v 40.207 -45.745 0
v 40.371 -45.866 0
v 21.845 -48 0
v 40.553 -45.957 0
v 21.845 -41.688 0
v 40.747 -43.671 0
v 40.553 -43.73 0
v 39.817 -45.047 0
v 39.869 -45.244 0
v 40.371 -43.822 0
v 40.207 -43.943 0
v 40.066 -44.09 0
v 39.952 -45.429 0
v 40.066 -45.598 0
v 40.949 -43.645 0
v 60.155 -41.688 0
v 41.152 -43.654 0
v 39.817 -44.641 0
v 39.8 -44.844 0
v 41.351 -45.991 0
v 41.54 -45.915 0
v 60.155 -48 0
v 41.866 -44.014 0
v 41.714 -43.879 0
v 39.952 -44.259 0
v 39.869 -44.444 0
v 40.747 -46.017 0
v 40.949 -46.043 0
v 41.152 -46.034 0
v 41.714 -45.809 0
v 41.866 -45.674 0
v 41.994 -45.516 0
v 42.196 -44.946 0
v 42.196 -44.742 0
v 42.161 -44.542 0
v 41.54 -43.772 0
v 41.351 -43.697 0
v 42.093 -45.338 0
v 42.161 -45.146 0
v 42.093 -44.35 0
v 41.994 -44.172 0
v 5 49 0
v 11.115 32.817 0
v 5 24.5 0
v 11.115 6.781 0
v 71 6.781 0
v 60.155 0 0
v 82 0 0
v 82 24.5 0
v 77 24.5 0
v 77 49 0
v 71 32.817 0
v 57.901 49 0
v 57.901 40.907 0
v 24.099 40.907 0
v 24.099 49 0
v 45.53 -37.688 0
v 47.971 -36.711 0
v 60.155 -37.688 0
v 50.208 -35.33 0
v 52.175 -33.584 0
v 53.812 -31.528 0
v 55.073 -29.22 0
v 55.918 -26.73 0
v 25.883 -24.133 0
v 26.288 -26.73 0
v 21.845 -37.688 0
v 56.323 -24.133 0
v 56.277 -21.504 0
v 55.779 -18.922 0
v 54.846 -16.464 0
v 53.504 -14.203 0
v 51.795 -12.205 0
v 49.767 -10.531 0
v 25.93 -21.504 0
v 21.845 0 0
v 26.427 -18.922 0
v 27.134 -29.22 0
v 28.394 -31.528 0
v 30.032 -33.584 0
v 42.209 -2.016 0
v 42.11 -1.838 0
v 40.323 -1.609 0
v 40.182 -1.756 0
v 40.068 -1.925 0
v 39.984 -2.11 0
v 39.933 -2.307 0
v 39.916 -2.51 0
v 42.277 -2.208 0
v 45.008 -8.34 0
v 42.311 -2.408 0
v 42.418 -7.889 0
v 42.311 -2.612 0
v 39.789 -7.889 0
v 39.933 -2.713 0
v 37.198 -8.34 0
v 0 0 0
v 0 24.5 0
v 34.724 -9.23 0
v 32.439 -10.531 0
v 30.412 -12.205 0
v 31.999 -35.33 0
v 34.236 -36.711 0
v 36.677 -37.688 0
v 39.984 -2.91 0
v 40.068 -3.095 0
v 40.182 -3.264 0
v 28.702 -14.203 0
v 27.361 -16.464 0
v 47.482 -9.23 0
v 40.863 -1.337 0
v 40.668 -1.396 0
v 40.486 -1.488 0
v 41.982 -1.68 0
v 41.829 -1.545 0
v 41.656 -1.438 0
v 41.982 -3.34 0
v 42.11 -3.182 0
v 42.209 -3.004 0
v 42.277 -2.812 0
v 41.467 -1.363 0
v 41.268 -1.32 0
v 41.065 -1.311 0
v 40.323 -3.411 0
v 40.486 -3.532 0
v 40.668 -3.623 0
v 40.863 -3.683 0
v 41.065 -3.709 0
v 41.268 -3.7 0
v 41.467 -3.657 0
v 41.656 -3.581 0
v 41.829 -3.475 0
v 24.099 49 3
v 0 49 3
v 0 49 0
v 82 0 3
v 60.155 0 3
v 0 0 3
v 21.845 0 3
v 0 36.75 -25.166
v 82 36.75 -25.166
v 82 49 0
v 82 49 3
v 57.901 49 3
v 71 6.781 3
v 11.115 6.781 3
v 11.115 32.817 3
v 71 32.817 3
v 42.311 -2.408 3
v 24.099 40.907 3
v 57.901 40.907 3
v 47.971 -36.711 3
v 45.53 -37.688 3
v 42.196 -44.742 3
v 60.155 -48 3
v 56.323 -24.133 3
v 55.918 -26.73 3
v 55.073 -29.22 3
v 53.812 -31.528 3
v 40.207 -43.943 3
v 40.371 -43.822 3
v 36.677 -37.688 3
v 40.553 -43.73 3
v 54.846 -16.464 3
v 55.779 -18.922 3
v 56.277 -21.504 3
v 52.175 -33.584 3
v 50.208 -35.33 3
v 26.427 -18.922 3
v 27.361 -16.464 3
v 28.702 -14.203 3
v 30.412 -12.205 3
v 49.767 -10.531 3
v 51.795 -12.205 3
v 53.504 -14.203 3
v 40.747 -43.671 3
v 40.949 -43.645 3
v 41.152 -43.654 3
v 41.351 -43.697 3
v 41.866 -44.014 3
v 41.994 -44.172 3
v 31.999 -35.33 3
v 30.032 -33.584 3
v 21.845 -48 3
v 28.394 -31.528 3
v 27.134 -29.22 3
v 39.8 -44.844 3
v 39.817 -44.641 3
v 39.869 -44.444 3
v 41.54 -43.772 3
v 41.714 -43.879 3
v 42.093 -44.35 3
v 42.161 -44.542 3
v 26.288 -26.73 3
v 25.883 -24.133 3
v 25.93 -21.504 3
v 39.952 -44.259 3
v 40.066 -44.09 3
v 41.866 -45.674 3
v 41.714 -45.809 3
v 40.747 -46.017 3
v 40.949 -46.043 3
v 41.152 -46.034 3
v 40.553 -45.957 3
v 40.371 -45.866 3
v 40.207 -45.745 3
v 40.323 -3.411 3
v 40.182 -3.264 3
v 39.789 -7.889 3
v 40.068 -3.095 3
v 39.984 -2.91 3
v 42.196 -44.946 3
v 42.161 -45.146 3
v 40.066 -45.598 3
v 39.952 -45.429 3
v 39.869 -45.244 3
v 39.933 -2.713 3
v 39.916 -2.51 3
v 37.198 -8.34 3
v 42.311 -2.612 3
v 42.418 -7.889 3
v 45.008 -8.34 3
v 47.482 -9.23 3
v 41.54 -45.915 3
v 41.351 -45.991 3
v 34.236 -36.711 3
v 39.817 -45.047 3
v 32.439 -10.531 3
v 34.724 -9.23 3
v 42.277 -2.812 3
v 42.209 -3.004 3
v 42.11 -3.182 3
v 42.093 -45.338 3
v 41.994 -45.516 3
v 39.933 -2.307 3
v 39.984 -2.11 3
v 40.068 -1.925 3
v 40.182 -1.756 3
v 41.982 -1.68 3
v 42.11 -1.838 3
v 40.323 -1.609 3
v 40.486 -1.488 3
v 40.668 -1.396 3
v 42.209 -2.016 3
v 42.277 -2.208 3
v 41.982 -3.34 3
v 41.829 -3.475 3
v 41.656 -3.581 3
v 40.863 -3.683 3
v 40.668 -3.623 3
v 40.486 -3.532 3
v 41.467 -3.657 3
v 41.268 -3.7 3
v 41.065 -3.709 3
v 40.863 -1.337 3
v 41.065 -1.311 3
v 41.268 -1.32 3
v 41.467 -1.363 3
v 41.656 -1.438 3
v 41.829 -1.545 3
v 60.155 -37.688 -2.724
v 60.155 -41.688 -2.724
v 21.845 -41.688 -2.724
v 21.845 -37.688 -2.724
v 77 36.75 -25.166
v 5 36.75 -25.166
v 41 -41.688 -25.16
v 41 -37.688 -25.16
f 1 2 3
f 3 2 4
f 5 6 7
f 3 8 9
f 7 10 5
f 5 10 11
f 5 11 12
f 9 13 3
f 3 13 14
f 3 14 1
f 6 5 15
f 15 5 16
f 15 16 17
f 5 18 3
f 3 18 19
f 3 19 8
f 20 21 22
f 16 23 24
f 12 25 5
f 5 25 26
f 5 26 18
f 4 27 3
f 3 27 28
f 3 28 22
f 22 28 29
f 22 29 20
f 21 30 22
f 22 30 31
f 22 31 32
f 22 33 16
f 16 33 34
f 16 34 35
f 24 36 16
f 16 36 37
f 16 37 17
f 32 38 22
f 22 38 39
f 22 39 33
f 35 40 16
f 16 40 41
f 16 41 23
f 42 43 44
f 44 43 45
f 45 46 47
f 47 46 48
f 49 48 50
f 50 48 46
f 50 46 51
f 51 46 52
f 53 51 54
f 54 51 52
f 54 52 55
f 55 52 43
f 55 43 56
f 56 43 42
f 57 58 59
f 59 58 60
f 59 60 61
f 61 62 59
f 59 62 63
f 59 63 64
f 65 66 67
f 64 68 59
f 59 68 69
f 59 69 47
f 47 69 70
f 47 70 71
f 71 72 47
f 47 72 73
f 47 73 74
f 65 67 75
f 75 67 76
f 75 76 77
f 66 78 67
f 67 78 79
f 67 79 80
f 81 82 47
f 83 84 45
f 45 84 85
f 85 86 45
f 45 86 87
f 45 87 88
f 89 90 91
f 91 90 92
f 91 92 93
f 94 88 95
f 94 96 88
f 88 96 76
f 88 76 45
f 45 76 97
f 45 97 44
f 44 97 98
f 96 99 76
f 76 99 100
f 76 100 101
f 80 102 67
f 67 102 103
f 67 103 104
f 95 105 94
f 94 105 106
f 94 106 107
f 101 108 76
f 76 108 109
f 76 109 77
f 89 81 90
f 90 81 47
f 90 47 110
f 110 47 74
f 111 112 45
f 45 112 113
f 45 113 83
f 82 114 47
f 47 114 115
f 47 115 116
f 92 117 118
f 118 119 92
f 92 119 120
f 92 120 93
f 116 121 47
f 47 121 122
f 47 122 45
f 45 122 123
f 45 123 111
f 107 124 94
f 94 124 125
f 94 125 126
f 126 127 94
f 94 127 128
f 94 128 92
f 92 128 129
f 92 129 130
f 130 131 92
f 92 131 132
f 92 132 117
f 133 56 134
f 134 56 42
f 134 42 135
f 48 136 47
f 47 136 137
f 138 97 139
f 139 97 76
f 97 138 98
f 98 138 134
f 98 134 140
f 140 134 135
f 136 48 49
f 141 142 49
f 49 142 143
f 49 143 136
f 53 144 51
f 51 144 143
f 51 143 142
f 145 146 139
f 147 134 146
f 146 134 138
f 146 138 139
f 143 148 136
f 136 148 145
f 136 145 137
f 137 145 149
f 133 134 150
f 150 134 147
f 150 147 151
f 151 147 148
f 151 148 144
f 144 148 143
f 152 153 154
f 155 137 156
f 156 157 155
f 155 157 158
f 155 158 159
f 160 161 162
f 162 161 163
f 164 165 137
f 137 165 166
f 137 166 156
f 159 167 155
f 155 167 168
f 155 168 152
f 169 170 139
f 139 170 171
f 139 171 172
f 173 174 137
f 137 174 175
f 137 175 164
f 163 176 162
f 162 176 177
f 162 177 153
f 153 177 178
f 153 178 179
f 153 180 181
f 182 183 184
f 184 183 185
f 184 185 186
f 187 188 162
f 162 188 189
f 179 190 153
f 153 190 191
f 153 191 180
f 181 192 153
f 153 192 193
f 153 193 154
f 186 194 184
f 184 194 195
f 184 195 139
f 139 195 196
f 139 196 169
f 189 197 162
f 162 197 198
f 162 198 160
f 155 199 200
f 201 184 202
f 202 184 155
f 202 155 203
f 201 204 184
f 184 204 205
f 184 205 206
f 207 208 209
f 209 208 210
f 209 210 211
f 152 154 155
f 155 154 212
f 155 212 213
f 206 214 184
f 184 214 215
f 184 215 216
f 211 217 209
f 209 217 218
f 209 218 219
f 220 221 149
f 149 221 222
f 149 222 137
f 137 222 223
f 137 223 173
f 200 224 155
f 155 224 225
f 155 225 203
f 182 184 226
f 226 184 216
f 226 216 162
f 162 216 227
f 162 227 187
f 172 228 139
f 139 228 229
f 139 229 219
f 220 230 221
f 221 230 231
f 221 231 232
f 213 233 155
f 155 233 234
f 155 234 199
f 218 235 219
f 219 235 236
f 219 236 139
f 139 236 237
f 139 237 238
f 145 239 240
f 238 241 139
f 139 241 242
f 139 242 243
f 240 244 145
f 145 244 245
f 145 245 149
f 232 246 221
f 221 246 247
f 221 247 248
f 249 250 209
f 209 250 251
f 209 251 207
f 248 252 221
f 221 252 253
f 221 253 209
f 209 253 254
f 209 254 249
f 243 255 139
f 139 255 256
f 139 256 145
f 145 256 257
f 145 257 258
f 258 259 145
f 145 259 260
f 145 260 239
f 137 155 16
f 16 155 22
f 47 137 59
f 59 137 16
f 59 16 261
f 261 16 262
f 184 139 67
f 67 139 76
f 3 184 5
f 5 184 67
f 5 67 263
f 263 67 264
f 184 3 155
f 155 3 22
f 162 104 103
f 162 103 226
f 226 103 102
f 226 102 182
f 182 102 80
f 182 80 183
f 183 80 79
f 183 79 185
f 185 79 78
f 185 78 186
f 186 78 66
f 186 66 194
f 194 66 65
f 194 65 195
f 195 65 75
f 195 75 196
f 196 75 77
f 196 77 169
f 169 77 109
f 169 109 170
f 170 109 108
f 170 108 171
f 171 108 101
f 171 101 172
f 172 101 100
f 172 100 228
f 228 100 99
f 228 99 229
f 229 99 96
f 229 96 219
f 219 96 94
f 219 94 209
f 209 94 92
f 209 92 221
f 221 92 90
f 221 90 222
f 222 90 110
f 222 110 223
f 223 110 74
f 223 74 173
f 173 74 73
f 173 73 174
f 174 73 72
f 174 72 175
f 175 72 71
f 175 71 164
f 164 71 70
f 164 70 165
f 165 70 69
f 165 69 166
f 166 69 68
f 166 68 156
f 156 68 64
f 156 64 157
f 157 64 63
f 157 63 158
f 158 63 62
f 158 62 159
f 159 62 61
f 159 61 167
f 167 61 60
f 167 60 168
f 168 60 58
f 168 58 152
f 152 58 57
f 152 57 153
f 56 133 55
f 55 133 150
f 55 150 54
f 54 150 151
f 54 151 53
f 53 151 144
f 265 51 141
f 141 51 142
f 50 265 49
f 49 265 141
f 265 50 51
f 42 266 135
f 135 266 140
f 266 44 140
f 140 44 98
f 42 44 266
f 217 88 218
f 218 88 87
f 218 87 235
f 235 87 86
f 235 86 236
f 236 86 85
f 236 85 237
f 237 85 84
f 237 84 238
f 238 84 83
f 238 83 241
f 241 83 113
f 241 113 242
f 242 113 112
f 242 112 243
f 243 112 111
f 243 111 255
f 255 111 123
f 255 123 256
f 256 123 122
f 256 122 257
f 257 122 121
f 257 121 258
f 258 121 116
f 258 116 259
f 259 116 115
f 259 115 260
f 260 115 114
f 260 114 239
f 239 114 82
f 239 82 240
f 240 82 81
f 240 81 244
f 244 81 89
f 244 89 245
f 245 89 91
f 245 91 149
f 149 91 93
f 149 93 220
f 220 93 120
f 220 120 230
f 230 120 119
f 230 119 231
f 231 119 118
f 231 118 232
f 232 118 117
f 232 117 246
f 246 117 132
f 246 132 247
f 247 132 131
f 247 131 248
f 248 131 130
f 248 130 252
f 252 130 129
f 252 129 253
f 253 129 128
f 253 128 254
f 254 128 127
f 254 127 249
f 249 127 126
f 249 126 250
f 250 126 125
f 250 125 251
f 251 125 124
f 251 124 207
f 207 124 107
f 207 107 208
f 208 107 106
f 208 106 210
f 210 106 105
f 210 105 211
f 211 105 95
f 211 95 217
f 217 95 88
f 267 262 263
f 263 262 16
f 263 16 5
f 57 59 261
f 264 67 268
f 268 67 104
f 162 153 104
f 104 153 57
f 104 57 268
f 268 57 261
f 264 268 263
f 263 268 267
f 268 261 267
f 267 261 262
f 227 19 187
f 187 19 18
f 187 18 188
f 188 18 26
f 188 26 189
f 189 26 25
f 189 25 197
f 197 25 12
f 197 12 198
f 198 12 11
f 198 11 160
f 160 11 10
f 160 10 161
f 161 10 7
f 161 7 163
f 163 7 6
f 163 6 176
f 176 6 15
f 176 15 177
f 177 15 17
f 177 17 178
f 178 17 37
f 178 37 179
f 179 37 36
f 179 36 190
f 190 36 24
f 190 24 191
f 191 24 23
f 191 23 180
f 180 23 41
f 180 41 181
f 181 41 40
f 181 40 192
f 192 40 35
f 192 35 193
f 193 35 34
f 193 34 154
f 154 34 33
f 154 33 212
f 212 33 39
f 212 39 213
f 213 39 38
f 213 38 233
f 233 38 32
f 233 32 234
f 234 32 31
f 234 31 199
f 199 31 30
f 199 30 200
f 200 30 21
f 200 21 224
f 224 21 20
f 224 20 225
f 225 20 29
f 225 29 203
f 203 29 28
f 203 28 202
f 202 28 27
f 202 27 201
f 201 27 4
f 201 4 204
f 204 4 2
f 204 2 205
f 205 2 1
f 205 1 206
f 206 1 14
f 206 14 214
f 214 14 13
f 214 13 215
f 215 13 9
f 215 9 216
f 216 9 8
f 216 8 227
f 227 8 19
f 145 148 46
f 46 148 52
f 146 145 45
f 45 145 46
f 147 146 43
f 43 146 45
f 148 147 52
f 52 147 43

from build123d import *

# Parameters (mm, degrees)
ESQUISSE1_W             = 82
ESQUISSE1_H             = 49
BOSS_EXTRU_1_DEPTH      = 3
ESQUISSE2_W             = 38.309373872
ESQUISSE2_H             = 3
BOSS_EXTRU_2_DEPTH      = 48
ESQUISSE3_R             = 15.255971645
ENL_V_MAT_EXTRU_1_DEPTH = 96.571962416
ESQUISSE4_W             = 33.801324292
ESQUISSE4_H             = 8.092552901
ENL_V_MAT_EXTRU_2_DEPTH = 96.571962416
BOSS_EXTRU_3_DEPTH      = 5
BOSS_EXTRU_4_DEPTH      = 5
ESQUISSE8_R             = 1.2
ENL_V_MAT_EXTRU_3_DEPTH = 99.784235864
BOSS_EXTRU_6_START      = -38.309374
ESQUISSE9_W             = 5.724168344
ESQUISSE9_H             = 4
BOSS_EXTRU_6_DEPTH      = 38.309374
BOSS_EXTRU_7_DEPTH      = 4
ESQUISSE11_R            = 1.2
ENL_V_MAT_EXTRU_4_DEPTH = 99.784235864
ESQUISSE12_W            = 59.88479499
ESQUISSE12_H            = 26.036139414
ENL_V_MAT_EXTRU_5_DEPTH = 100.590767548


with BuildPart() as part:
    # Esquisse1 → Boss.-Extru.1 (new body)
    with BuildSketch(Plane.XY):
        with Locations((41, 24.5)):
            Rectangle(ESQUISSE1_W, ESQUISSE1_H)
    extrude(amount=BOSS_EXTRU_1_DEPTH)

    # Esquisse2 → Boss.-Extru.2 (add)
    with BuildSketch(Plane.XZ):
        with Locations((41, 1.5)):
            Rectangle(ESQUISSE2_W, ESQUISSE2_H)
    extrude(amount=BOSS_EXTRU_2_DEPTH)

    # Esquisse3 → Enlèv. mat.-Extru.1 (cut, through all)
    with BuildSketch(Plane(origin=(0, 0, 0), x_dir=(-1, 0, 0), z_dir=(0, 0, -1))):
        with Locations((-41.103242704, -23.088178639)):
            Circle(ESQUISSE3_R)
    extrude(amount=-ENL_V_MAT_EXTRU_1_DEPTH, mode=Mode.SUBTRACT)

    # Esquisse4 → Enlèv. mat.-Extru.2 (cut, through all)
    with BuildSketch(Plane(origin=(0, 0, 0), x_dir=(-1, 0, 0), z_dir=(0, 0, -1))):
        with Locations((-41, 44.953723549)):
            Rectangle(ESQUISSE4_W, ESQUISSE4_H)
    extrude(amount=-ENL_V_MAT_EXTRU_2_DEPTH, mode=Mode.SUBTRACT)

    # Esquisse5 → Boss.-Extru.3 (add)
    with BuildSketch(Plane(origin=(82, 0, 0), x_dir=(0, 0, -1), z_dir=(1, 0, 0))):
        Polygon((0, 49), (0, 24.5), (25.165954286, 36.75), align=None)
    extrude(amount=-BOSS_EXTRU_3_DEPTH)

    # Esquisse6 → Boss.-Extru.4 (add)
    with BuildSketch(Plane.ZY):
        Polygon((0, 49), (0, 24.5), (-25.165954286, 36.75), align=None)
    extrude(amount=-BOSS_EXTRU_4_DEPTH)

    # Esquisse8 → Enlèv. mat.-Extru.3 (cut, through all)
    with BuildSketch(Plane(origin=(0, 0, 0), x_dir=(-1, 0, 0), z_dir=(0, 0, -1))):
        with Locations((-41.11564979, -2.509917341)):
            Circle(ESQUISSE8_R)
    extrude(amount=-ENL_V_MAT_EXTRU_3_DEPTH, mode=Mode.SUBTRACT)

    # Esquisse9 → Boss.-Extru.6 (add)
    with BuildSketch(Plane.ZY.offset(-21.845313064).offset(BOSS_EXTRU_6_START)):
        with Locations((0.137915828, -39.687870455)):
            Rectangle(ESQUISSE9_W, ESQUISSE9_H)
    extrude(amount=BOSS_EXTRU_6_DEPTH)

    # Esquisse10 → Boss.-Extru.7 (add)
    with BuildSketch(Plane.XZ.offset(41.687870455)):
        Polygon((21.845313064, -2.724168344), (60.154686936, -2.724168344), (41, -25.159658009), align=None)
    extrude(amount=-BOSS_EXTRU_7_DEPTH)

    # Esquisse11 → Enlèv. mat.-Extru.4 (cut, through all)
    with BuildSketch(Plane(origin=(0, 0, 0), x_dir=(-1, 0, 0), z_dir=(0, 0, -1))):
        with Locations((-41, -44.843935227)):
            Circle(ESQUISSE11_R)
    extrude(amount=-ENL_V_MAT_EXTRU_4_DEPTH, mode=Mode.SUBTRACT)

    # Esquisse12 → Enlèv. mat.-Extru.5 (cut, through all)
    with BuildSketch(Plane.XY.offset(3)):
        with Locations((41.057824895, 19.798764879)):
            Rectangle(ESQUISSE12_W, ESQUISSE12_H)
    extrude(amount=-ENL_V_MAT_EXTRU_5_DEPTH, mode=Mode.SUBTRACT)


solid = part.part
